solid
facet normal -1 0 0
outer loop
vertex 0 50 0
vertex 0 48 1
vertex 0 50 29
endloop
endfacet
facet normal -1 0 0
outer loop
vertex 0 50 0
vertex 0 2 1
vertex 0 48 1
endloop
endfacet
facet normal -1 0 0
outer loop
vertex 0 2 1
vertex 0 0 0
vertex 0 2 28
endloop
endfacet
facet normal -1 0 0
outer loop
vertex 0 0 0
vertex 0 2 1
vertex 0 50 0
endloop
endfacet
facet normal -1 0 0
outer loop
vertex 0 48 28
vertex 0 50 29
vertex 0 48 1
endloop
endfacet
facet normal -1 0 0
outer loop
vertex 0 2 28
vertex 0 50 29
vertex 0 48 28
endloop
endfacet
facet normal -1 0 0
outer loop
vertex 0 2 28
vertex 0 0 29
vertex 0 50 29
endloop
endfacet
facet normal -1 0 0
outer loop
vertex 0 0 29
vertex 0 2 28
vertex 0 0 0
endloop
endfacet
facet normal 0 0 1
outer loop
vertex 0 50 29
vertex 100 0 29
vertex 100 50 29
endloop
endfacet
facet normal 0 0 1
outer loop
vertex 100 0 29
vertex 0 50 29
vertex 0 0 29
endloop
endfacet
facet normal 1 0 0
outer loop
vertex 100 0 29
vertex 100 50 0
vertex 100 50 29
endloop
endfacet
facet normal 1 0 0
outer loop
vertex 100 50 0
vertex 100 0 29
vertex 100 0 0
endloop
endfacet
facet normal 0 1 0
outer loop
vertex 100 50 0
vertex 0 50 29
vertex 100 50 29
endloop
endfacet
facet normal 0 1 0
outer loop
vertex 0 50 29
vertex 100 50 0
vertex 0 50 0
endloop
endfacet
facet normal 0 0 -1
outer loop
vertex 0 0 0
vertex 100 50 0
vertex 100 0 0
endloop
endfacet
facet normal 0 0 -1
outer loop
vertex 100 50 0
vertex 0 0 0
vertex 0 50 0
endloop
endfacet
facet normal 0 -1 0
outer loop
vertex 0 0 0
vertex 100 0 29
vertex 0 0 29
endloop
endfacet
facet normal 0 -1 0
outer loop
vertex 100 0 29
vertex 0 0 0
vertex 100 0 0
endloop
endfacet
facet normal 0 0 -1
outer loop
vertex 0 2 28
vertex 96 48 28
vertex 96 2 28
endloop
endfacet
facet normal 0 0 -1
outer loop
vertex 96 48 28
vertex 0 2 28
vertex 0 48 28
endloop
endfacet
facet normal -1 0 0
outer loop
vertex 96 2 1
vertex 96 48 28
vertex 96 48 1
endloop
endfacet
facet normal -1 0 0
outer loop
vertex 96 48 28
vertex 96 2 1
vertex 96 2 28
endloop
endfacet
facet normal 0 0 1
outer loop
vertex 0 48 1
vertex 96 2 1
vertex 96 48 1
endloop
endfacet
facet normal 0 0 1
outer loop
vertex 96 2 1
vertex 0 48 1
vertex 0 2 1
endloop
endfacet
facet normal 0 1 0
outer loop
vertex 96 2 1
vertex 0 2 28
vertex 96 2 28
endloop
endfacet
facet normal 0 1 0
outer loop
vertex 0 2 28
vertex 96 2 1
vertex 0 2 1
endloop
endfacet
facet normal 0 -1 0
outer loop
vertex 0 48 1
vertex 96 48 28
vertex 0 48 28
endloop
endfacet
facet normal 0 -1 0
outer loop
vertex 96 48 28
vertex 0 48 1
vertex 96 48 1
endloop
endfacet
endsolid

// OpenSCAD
// file: globals.scad
// General
total_x = 10;
total_y = 10;
total_z = 10;
filler = 0.01;
screw_r = 0.1;
screw_h = 2;
elevation_deg = 12.5;
lower_elevation_deg = 18.5;
plexi_thickness = 0.2;

// For legs
l_arms_base_d = 3.5;

// For Base
b_overall_z = 0.1;
b_legfit_z = 0.6;
b_legspace = 3.5 + 0.5;
b_armspace_z = 3.5;
base_head_fit_1 = 2;
base_head_fit_2 = 3;
base_total_z = b_armspace_z + b_legfit_z;

// For Top
top_total_y = (total_y * cos(elevation_deg)) + 0.74;

// For Face
face_total_y = b_legspace;
face_total_z = total_z - (base_total_z + filler);

// For Battery Holder (discarded finally)
bh_y = 5;
bh_z = 2.9;

// For RasPI Holder
raspi_total_y = 4;
raspi_total_z = 1;

// For backmost part
bp_total_y = total_y - (b_legspace + filler + bh_y + filler);
bp_total_z = 7;
// main file
include <globals.scad>

module battery_holder(x, y, z) {
    battery_x = 9.8; 
    battery_y = 4.6; 
    battery_z = 2.7; 
    difference() {
        cube([x, y, z]);
        translate([-0.2, (y-battery_y)/2, (z-battery_z)/2]) cube([battery_x, battery_y, battery_z]);
    }
}

$fn=300;
scale([10, 10, 10]) battery_holder(x=total_x, y=bh_y, z=bh_z);
